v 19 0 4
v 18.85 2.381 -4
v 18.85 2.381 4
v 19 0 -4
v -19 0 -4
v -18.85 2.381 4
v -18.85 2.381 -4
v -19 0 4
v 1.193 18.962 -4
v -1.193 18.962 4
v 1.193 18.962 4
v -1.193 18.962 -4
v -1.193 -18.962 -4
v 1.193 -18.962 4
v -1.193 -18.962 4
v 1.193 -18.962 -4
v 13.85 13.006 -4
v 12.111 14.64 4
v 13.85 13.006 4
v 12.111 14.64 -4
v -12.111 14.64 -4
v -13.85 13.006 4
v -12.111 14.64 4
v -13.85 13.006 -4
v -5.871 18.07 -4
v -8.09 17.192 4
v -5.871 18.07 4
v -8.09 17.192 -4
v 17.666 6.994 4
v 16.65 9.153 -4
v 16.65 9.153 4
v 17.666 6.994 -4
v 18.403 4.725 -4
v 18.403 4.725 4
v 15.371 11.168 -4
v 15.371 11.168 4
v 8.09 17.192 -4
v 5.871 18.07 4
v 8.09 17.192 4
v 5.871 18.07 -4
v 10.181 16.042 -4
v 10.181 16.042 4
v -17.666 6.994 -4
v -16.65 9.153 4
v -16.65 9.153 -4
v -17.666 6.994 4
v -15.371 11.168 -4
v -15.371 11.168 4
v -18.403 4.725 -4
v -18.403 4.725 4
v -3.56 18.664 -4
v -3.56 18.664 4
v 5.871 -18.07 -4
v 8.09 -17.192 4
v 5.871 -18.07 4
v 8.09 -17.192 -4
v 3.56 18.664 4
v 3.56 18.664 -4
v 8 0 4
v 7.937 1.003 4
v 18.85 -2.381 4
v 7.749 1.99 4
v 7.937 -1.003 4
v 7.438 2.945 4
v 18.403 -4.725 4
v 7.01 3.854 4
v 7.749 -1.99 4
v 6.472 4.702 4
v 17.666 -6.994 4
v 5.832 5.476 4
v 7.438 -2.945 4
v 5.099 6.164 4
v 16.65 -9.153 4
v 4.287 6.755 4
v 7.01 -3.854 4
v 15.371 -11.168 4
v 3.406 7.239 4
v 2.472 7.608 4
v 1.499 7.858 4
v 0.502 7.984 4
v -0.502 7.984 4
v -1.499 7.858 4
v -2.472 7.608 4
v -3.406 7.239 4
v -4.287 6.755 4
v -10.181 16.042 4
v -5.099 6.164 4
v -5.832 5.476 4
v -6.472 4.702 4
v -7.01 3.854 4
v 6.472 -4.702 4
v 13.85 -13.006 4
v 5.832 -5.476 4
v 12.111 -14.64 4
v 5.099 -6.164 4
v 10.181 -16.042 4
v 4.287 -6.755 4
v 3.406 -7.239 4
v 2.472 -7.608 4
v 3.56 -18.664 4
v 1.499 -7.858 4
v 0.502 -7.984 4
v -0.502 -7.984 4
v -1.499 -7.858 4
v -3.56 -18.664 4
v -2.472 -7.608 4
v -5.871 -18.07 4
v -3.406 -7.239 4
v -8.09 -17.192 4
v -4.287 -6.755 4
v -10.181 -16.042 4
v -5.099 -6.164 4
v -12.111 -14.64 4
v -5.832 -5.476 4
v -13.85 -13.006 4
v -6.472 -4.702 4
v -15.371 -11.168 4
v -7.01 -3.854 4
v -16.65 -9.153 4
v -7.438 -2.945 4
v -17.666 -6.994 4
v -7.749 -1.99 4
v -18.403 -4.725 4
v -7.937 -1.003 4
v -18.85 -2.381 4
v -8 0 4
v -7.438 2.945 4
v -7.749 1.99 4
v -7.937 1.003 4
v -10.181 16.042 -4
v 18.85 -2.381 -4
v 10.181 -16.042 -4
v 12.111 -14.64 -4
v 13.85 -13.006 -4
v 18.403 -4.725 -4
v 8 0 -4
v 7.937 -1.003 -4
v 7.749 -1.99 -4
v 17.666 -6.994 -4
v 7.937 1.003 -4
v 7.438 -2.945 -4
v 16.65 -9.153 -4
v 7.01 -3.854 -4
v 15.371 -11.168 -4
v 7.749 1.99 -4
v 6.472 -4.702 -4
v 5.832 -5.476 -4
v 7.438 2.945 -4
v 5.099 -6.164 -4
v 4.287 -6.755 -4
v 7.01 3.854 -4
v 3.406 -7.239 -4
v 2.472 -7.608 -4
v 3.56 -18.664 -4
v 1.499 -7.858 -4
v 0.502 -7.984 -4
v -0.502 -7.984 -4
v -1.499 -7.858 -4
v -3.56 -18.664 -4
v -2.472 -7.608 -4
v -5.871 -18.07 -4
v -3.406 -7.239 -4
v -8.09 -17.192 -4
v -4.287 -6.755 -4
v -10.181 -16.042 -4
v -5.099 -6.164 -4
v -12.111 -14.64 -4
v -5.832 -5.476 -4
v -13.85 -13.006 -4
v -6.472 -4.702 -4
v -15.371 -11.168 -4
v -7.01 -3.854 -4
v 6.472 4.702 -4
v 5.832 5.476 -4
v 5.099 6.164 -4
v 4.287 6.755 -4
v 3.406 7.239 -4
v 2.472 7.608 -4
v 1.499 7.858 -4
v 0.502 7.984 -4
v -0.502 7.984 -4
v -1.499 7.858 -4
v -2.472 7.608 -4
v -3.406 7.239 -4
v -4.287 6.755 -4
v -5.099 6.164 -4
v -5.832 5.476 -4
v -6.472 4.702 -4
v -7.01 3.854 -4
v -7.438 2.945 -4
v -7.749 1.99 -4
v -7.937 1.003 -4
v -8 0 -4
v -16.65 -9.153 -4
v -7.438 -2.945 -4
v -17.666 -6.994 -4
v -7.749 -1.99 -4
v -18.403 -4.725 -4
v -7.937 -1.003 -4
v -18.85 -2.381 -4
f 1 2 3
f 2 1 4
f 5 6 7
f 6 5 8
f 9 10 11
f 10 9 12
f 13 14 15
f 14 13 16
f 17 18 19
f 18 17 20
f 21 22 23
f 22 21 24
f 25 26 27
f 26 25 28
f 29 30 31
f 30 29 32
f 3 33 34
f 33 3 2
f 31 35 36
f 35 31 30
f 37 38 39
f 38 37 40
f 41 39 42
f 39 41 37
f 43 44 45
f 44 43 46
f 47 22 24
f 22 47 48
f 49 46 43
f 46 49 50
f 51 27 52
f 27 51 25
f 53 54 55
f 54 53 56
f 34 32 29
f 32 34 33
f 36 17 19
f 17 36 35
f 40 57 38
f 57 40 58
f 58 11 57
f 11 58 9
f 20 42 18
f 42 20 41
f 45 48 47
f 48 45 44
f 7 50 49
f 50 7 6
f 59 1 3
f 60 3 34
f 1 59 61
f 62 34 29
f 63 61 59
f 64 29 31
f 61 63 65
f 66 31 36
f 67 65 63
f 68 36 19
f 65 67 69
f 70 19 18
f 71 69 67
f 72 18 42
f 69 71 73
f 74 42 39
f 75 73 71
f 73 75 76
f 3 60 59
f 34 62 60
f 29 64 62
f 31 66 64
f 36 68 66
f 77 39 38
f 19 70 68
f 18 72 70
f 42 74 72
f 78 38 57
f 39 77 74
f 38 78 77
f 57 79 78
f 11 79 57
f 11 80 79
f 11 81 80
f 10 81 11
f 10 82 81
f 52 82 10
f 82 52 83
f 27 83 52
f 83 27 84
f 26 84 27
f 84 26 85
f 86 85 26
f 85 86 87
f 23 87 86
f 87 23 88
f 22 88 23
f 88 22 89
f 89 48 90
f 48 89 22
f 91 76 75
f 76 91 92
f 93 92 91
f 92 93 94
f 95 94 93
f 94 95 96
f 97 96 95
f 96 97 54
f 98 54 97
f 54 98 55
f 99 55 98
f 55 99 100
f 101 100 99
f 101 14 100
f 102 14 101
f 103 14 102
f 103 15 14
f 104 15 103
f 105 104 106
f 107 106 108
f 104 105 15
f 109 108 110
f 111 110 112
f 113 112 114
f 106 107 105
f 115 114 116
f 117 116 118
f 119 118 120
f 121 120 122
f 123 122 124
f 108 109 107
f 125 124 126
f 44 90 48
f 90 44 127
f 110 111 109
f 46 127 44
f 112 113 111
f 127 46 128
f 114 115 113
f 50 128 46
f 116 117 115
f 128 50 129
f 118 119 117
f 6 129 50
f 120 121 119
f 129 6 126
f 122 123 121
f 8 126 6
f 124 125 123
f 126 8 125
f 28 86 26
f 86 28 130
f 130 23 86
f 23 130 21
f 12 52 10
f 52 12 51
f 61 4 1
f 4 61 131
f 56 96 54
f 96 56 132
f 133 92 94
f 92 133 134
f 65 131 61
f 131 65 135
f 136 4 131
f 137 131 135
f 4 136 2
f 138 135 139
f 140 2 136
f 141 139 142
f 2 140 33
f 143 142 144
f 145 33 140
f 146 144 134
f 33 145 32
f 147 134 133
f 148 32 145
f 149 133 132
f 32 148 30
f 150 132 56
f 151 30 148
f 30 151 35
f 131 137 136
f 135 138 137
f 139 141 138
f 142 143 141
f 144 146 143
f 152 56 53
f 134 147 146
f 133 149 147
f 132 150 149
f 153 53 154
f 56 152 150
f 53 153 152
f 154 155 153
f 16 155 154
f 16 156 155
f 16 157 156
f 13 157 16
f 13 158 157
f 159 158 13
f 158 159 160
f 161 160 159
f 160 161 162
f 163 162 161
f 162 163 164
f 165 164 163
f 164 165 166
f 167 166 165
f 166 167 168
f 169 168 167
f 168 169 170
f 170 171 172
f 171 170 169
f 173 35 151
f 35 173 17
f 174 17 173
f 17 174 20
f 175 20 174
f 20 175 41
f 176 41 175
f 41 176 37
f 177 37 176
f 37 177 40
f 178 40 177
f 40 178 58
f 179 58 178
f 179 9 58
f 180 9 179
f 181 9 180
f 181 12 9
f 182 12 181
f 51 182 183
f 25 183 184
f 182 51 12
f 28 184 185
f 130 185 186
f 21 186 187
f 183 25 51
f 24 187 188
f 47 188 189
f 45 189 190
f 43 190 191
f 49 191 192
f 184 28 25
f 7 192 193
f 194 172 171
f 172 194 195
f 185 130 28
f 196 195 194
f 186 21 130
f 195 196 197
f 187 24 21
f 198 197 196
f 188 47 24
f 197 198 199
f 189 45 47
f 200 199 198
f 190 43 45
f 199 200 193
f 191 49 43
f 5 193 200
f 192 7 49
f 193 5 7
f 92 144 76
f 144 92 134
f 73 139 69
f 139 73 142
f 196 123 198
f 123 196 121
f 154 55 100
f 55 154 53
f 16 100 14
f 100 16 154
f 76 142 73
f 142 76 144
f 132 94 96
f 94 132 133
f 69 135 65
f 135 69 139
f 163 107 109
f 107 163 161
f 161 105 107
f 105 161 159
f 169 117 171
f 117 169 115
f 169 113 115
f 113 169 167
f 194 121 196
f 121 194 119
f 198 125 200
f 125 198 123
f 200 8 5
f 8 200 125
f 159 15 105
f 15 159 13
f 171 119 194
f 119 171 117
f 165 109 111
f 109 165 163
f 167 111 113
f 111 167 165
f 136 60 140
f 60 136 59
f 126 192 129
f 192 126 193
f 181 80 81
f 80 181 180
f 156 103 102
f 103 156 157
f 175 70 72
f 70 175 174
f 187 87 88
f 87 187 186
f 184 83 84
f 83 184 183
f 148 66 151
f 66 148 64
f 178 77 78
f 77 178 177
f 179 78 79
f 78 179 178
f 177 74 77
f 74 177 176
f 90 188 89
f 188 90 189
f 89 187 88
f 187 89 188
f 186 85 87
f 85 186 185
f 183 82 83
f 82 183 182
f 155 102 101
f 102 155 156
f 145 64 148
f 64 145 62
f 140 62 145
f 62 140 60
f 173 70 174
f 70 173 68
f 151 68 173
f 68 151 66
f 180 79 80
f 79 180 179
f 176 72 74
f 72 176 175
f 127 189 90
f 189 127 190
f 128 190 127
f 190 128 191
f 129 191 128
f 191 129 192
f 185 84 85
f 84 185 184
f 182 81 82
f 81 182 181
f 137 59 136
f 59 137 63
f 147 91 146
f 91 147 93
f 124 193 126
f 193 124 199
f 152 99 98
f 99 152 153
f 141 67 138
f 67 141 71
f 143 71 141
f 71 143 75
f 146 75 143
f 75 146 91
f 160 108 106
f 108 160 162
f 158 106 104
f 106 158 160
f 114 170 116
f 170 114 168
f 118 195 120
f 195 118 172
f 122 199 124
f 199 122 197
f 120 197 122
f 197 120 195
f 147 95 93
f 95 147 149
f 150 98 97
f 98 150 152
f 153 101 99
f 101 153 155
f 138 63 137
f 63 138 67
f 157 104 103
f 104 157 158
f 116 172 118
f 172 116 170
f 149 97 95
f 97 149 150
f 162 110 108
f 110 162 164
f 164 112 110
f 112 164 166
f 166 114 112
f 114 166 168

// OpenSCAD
$fn = 50;


difference() {
	union() {
		translate(v = [0, 0, -4.0000000000]) {
			cylinder(h = 8, r = 19.0000000000);
		}
	}
	union() {
		translate(v = [0, 0, -100.0000000000]) {
			cylinder(h = 200, r = 8);
		}
	}
}
